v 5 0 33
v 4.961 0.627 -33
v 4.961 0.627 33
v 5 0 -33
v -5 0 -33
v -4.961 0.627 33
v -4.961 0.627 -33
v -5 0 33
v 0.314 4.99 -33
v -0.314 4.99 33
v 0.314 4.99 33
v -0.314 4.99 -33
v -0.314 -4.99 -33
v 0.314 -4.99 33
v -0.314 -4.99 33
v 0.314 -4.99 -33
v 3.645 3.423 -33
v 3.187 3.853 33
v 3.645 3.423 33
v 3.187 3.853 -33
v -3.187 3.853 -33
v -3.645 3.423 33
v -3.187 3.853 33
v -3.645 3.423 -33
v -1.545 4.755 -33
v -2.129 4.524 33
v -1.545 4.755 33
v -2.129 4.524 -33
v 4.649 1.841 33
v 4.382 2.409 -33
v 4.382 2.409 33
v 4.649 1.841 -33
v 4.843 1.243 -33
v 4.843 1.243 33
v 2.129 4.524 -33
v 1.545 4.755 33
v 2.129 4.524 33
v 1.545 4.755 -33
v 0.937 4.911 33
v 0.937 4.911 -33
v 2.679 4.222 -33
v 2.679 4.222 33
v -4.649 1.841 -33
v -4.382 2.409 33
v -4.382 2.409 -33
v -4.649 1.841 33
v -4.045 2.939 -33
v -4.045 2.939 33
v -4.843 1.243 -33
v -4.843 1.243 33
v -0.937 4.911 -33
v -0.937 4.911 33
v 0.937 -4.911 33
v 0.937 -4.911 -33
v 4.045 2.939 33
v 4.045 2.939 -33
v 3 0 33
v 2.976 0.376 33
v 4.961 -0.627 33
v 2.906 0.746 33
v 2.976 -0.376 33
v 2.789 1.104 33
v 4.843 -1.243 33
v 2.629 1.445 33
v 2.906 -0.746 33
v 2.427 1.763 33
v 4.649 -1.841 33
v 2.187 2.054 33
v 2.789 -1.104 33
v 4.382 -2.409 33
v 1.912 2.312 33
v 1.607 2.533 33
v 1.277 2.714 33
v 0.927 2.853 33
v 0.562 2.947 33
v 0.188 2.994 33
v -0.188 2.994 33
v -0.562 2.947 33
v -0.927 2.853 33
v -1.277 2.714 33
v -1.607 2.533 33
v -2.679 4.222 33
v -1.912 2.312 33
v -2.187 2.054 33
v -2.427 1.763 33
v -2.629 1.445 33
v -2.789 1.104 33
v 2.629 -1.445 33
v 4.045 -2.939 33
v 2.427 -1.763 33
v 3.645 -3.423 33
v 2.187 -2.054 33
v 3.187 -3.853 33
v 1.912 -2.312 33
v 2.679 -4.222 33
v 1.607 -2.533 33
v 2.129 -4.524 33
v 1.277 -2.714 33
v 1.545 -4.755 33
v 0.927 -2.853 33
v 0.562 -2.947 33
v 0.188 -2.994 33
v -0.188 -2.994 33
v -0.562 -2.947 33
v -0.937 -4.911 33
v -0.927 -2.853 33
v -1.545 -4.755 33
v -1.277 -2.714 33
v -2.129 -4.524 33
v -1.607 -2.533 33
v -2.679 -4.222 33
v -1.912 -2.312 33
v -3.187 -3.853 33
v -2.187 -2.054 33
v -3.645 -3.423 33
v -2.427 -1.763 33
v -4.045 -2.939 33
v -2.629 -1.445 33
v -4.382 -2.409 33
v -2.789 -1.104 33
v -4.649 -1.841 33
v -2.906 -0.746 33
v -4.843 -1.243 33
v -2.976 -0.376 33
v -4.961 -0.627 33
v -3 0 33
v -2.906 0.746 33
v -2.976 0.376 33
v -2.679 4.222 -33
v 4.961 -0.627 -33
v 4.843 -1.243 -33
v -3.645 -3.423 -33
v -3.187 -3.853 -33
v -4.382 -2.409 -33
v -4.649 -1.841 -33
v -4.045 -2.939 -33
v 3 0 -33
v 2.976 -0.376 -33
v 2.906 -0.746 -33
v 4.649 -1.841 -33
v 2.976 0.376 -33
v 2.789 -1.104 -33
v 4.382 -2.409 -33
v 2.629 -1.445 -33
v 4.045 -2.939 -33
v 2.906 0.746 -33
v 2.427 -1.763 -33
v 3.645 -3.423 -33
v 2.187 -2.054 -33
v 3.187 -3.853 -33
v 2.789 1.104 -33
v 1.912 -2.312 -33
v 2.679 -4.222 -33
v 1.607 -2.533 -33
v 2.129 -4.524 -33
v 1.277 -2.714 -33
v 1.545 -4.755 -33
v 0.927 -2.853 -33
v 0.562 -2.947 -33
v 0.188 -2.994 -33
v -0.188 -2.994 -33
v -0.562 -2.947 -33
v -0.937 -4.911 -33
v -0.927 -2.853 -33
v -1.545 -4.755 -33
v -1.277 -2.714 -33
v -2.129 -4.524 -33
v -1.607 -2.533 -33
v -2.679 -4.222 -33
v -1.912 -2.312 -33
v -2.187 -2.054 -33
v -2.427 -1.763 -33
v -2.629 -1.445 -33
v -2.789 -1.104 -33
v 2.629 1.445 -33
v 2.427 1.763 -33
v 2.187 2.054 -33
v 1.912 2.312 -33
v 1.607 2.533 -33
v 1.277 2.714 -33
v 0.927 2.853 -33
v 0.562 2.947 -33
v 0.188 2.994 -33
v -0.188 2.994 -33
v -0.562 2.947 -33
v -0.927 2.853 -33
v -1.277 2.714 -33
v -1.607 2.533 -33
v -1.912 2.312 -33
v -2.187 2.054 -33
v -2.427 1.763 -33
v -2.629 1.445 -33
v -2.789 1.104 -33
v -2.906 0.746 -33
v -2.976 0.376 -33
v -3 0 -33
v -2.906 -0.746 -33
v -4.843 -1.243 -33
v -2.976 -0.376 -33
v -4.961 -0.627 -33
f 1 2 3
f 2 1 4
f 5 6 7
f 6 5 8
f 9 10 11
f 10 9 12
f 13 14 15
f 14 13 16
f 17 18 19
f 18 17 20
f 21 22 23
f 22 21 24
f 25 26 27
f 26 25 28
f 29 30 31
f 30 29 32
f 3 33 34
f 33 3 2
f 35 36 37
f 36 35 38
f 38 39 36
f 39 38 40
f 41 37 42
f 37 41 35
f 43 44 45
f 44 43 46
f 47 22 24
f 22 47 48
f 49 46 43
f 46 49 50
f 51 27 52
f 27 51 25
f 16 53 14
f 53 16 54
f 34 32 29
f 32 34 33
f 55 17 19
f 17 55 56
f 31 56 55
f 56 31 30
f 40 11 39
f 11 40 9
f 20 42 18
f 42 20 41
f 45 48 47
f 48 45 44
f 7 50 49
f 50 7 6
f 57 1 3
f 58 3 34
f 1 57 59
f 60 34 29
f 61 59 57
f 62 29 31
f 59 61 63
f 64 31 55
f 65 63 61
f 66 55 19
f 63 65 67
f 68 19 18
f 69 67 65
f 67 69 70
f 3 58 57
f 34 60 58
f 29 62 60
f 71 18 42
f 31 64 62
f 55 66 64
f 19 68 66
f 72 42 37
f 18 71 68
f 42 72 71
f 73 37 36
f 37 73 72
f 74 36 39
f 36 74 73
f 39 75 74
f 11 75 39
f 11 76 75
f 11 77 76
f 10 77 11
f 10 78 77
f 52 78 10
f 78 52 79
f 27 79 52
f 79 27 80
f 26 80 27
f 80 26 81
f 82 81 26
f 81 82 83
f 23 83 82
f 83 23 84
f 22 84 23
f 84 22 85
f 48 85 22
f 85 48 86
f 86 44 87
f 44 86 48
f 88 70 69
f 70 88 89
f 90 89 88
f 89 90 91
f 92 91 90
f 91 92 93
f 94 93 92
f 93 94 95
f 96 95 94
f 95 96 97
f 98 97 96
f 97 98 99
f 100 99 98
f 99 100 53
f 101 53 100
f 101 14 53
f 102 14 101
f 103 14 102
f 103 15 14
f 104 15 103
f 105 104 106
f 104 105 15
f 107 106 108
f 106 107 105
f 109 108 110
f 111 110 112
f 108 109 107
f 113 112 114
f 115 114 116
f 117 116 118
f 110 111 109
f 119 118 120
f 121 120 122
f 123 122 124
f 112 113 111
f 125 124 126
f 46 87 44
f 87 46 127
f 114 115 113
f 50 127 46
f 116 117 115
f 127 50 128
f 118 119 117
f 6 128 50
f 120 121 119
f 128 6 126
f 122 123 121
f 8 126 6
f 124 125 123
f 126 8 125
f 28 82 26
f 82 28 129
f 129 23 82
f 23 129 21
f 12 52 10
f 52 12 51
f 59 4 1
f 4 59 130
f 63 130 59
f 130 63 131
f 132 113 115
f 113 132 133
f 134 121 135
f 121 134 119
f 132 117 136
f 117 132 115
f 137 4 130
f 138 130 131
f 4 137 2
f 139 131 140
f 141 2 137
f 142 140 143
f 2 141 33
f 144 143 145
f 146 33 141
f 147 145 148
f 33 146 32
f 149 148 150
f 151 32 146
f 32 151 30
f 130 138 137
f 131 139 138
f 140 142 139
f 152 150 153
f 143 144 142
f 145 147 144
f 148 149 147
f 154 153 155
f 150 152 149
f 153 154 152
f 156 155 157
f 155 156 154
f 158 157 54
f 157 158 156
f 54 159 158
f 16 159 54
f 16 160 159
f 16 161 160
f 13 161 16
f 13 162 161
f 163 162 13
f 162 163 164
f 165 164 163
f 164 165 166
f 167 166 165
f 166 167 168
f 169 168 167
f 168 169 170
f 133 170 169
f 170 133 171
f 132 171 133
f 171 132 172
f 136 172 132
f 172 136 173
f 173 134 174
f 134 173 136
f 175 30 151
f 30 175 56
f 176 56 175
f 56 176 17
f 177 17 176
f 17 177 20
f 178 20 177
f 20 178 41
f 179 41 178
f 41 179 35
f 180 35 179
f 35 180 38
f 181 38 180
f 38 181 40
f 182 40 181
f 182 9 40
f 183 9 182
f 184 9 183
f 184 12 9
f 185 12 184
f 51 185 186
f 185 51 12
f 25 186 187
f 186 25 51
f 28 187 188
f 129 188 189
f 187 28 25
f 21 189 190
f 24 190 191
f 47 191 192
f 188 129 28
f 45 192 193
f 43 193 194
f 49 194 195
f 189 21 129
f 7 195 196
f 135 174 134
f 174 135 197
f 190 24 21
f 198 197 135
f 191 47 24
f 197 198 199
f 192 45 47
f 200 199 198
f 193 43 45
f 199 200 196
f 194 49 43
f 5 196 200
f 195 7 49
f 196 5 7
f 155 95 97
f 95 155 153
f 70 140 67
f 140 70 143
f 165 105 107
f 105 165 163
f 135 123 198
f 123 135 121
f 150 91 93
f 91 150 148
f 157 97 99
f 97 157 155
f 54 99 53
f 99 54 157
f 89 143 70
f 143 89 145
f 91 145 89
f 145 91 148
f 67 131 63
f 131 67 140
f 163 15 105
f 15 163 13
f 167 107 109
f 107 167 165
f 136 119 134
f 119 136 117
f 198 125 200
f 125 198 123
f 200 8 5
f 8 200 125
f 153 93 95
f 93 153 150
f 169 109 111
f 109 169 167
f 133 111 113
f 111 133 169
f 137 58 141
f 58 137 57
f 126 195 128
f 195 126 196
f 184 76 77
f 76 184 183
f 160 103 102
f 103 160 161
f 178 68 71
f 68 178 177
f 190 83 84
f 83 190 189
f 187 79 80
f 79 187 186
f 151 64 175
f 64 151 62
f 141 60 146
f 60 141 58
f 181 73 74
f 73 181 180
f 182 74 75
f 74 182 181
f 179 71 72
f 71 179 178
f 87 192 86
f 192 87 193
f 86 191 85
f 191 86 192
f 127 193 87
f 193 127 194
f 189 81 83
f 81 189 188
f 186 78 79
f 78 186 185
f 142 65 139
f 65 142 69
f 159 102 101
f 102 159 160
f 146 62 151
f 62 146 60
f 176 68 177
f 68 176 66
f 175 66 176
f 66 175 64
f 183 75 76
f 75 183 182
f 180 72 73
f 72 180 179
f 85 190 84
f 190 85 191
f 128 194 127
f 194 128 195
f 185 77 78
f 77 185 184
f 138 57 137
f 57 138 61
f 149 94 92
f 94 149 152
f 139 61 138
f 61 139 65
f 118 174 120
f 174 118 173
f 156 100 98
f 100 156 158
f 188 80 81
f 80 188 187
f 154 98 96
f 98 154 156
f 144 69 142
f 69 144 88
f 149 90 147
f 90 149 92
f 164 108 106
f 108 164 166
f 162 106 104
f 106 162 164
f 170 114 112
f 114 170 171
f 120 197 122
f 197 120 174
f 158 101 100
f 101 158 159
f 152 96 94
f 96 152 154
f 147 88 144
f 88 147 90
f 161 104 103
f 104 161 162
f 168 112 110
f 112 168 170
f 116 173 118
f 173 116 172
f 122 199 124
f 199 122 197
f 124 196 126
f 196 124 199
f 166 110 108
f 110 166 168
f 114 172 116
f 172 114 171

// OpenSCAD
$fn = 50;


difference() {
	union() {
		translate(v = [0, 0, -33.0000000000]) {
			cylinder(h = 66, r = 5.0000000000);
		}
	}
	union() {
		translate(v = [0, 0, -100.0000000000]) {
			cylinder(h = 200, r = 3);
		}
	}
}
